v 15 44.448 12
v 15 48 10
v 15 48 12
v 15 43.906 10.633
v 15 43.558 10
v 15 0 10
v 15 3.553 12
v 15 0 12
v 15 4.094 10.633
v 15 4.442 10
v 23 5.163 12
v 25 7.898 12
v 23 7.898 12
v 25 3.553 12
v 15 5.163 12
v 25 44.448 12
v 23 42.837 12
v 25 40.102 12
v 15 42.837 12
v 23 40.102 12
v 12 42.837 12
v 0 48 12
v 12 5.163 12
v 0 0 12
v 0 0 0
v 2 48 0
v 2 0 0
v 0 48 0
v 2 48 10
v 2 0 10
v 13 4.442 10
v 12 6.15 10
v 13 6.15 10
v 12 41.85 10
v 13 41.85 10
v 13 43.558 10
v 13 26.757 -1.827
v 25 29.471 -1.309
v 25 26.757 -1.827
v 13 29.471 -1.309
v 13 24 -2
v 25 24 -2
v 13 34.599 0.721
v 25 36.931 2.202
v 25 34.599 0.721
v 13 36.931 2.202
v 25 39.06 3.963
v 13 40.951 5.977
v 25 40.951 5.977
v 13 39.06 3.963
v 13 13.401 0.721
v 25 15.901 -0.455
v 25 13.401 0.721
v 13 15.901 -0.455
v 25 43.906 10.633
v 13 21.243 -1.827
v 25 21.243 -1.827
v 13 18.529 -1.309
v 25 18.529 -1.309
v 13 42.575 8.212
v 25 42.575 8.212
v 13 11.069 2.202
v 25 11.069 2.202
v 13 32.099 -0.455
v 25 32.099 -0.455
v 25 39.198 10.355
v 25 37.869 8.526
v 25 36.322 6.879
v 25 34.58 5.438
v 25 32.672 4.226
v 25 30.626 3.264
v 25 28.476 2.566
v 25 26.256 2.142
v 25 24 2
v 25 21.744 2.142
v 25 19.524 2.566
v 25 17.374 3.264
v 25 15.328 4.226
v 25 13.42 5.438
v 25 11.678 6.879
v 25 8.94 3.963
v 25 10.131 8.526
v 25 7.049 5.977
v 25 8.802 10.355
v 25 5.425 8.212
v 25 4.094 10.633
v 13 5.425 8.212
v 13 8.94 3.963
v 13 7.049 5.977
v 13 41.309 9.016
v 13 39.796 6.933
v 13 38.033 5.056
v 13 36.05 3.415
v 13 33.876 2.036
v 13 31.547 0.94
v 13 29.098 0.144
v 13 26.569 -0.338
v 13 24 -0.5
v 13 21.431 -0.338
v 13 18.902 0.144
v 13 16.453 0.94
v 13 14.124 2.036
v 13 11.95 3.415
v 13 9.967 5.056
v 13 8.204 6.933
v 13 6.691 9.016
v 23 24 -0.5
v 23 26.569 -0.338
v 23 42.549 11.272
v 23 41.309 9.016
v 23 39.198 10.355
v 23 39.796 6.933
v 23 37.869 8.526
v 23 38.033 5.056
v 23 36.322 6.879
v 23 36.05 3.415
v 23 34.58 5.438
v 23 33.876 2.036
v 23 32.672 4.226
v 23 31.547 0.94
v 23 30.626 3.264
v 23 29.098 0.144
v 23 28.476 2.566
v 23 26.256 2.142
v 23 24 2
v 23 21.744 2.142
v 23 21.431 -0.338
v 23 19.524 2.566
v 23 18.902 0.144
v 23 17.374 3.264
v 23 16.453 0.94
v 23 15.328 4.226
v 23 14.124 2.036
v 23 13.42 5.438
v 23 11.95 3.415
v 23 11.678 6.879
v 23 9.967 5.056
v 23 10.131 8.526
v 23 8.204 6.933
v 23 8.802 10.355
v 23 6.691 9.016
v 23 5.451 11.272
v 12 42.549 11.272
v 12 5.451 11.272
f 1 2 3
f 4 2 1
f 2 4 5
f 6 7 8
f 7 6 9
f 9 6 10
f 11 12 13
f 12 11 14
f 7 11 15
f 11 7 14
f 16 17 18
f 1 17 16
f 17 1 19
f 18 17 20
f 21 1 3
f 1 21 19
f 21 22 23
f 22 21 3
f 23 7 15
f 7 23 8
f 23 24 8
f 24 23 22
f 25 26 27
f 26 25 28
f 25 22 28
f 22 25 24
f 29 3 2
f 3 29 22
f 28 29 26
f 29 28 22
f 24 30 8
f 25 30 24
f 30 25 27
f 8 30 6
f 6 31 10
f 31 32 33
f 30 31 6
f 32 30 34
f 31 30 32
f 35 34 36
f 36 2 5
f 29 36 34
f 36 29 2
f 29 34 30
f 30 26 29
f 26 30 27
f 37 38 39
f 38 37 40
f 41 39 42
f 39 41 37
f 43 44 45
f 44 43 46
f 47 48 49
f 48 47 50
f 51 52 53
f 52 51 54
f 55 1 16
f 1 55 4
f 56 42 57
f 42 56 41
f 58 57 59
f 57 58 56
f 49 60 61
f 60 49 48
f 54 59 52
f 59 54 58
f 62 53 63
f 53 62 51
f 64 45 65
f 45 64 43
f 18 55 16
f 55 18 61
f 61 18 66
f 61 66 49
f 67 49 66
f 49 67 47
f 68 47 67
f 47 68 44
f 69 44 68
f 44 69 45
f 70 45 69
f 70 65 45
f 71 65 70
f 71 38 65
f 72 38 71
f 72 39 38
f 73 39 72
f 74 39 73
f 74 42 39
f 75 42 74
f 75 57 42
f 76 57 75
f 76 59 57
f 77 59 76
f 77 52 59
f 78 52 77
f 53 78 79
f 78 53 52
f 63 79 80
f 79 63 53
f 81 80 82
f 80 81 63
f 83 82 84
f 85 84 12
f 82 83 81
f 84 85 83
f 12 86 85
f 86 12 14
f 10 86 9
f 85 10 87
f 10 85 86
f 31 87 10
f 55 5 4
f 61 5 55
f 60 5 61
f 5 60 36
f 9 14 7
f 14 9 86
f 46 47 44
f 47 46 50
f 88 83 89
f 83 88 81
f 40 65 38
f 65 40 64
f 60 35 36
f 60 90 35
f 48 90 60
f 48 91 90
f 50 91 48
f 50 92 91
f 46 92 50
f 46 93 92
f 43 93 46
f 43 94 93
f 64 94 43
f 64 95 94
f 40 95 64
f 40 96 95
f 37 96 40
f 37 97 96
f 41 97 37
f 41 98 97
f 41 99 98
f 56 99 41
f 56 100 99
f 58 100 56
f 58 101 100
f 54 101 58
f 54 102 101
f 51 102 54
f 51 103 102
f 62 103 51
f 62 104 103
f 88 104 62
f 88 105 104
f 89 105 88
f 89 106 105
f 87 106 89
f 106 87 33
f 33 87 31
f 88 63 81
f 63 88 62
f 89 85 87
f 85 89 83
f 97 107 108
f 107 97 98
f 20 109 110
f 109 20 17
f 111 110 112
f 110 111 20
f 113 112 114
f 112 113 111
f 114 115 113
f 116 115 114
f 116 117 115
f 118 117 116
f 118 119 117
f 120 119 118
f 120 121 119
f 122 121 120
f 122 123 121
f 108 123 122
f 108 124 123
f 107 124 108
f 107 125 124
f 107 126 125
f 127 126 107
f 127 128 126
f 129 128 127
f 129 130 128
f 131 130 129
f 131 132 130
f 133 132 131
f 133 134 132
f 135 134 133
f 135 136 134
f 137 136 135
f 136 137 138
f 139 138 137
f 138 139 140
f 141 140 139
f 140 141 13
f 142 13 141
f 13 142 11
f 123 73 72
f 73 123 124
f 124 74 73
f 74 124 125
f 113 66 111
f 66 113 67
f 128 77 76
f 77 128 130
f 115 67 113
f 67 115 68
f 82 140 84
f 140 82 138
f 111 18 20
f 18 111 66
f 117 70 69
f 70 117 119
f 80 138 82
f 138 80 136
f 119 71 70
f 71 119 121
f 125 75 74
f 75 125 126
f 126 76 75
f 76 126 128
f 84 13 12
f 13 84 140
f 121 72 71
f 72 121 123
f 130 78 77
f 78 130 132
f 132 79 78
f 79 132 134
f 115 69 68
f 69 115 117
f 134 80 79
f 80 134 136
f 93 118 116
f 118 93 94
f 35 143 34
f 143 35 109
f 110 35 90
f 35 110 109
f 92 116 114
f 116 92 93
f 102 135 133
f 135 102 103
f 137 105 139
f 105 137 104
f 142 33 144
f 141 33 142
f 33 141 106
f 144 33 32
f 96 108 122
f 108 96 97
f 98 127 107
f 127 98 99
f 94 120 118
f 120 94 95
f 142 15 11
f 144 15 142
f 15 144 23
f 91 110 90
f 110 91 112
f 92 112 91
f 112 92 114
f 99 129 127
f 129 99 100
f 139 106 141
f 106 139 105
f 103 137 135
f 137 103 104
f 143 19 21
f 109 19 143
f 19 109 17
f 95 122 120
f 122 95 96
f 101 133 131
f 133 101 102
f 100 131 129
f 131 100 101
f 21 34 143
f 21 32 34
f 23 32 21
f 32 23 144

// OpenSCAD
module back_block() {
  difference() {
    cube([15, 48, 12]);
    translate([2, -1, -2]) 
      cube([14, 50, 12]);
  }
}

module sensor_holder() {
    translate([12,24,20])
        rotate([0,90,0]) {
            difference() {
                                        translate([0,0,1])
                cylinder(r=22, h=12, $fn=50);
                cylinder(r=20.5, h=11, $fn=50);
                cylinder(r=18, h=14, $fn=50);
                translate([-32,-22, 0]) {
                  cube([40,44,30]);
        }
            }

        }
}

difference() {
    union() {
        back_block();
        sensor_holder();
    }
  translate([12,24,20])
    rotate([0,90,0]) {
        cylinder(r=20.5, h=11, $fn=50);
        
    }
}
